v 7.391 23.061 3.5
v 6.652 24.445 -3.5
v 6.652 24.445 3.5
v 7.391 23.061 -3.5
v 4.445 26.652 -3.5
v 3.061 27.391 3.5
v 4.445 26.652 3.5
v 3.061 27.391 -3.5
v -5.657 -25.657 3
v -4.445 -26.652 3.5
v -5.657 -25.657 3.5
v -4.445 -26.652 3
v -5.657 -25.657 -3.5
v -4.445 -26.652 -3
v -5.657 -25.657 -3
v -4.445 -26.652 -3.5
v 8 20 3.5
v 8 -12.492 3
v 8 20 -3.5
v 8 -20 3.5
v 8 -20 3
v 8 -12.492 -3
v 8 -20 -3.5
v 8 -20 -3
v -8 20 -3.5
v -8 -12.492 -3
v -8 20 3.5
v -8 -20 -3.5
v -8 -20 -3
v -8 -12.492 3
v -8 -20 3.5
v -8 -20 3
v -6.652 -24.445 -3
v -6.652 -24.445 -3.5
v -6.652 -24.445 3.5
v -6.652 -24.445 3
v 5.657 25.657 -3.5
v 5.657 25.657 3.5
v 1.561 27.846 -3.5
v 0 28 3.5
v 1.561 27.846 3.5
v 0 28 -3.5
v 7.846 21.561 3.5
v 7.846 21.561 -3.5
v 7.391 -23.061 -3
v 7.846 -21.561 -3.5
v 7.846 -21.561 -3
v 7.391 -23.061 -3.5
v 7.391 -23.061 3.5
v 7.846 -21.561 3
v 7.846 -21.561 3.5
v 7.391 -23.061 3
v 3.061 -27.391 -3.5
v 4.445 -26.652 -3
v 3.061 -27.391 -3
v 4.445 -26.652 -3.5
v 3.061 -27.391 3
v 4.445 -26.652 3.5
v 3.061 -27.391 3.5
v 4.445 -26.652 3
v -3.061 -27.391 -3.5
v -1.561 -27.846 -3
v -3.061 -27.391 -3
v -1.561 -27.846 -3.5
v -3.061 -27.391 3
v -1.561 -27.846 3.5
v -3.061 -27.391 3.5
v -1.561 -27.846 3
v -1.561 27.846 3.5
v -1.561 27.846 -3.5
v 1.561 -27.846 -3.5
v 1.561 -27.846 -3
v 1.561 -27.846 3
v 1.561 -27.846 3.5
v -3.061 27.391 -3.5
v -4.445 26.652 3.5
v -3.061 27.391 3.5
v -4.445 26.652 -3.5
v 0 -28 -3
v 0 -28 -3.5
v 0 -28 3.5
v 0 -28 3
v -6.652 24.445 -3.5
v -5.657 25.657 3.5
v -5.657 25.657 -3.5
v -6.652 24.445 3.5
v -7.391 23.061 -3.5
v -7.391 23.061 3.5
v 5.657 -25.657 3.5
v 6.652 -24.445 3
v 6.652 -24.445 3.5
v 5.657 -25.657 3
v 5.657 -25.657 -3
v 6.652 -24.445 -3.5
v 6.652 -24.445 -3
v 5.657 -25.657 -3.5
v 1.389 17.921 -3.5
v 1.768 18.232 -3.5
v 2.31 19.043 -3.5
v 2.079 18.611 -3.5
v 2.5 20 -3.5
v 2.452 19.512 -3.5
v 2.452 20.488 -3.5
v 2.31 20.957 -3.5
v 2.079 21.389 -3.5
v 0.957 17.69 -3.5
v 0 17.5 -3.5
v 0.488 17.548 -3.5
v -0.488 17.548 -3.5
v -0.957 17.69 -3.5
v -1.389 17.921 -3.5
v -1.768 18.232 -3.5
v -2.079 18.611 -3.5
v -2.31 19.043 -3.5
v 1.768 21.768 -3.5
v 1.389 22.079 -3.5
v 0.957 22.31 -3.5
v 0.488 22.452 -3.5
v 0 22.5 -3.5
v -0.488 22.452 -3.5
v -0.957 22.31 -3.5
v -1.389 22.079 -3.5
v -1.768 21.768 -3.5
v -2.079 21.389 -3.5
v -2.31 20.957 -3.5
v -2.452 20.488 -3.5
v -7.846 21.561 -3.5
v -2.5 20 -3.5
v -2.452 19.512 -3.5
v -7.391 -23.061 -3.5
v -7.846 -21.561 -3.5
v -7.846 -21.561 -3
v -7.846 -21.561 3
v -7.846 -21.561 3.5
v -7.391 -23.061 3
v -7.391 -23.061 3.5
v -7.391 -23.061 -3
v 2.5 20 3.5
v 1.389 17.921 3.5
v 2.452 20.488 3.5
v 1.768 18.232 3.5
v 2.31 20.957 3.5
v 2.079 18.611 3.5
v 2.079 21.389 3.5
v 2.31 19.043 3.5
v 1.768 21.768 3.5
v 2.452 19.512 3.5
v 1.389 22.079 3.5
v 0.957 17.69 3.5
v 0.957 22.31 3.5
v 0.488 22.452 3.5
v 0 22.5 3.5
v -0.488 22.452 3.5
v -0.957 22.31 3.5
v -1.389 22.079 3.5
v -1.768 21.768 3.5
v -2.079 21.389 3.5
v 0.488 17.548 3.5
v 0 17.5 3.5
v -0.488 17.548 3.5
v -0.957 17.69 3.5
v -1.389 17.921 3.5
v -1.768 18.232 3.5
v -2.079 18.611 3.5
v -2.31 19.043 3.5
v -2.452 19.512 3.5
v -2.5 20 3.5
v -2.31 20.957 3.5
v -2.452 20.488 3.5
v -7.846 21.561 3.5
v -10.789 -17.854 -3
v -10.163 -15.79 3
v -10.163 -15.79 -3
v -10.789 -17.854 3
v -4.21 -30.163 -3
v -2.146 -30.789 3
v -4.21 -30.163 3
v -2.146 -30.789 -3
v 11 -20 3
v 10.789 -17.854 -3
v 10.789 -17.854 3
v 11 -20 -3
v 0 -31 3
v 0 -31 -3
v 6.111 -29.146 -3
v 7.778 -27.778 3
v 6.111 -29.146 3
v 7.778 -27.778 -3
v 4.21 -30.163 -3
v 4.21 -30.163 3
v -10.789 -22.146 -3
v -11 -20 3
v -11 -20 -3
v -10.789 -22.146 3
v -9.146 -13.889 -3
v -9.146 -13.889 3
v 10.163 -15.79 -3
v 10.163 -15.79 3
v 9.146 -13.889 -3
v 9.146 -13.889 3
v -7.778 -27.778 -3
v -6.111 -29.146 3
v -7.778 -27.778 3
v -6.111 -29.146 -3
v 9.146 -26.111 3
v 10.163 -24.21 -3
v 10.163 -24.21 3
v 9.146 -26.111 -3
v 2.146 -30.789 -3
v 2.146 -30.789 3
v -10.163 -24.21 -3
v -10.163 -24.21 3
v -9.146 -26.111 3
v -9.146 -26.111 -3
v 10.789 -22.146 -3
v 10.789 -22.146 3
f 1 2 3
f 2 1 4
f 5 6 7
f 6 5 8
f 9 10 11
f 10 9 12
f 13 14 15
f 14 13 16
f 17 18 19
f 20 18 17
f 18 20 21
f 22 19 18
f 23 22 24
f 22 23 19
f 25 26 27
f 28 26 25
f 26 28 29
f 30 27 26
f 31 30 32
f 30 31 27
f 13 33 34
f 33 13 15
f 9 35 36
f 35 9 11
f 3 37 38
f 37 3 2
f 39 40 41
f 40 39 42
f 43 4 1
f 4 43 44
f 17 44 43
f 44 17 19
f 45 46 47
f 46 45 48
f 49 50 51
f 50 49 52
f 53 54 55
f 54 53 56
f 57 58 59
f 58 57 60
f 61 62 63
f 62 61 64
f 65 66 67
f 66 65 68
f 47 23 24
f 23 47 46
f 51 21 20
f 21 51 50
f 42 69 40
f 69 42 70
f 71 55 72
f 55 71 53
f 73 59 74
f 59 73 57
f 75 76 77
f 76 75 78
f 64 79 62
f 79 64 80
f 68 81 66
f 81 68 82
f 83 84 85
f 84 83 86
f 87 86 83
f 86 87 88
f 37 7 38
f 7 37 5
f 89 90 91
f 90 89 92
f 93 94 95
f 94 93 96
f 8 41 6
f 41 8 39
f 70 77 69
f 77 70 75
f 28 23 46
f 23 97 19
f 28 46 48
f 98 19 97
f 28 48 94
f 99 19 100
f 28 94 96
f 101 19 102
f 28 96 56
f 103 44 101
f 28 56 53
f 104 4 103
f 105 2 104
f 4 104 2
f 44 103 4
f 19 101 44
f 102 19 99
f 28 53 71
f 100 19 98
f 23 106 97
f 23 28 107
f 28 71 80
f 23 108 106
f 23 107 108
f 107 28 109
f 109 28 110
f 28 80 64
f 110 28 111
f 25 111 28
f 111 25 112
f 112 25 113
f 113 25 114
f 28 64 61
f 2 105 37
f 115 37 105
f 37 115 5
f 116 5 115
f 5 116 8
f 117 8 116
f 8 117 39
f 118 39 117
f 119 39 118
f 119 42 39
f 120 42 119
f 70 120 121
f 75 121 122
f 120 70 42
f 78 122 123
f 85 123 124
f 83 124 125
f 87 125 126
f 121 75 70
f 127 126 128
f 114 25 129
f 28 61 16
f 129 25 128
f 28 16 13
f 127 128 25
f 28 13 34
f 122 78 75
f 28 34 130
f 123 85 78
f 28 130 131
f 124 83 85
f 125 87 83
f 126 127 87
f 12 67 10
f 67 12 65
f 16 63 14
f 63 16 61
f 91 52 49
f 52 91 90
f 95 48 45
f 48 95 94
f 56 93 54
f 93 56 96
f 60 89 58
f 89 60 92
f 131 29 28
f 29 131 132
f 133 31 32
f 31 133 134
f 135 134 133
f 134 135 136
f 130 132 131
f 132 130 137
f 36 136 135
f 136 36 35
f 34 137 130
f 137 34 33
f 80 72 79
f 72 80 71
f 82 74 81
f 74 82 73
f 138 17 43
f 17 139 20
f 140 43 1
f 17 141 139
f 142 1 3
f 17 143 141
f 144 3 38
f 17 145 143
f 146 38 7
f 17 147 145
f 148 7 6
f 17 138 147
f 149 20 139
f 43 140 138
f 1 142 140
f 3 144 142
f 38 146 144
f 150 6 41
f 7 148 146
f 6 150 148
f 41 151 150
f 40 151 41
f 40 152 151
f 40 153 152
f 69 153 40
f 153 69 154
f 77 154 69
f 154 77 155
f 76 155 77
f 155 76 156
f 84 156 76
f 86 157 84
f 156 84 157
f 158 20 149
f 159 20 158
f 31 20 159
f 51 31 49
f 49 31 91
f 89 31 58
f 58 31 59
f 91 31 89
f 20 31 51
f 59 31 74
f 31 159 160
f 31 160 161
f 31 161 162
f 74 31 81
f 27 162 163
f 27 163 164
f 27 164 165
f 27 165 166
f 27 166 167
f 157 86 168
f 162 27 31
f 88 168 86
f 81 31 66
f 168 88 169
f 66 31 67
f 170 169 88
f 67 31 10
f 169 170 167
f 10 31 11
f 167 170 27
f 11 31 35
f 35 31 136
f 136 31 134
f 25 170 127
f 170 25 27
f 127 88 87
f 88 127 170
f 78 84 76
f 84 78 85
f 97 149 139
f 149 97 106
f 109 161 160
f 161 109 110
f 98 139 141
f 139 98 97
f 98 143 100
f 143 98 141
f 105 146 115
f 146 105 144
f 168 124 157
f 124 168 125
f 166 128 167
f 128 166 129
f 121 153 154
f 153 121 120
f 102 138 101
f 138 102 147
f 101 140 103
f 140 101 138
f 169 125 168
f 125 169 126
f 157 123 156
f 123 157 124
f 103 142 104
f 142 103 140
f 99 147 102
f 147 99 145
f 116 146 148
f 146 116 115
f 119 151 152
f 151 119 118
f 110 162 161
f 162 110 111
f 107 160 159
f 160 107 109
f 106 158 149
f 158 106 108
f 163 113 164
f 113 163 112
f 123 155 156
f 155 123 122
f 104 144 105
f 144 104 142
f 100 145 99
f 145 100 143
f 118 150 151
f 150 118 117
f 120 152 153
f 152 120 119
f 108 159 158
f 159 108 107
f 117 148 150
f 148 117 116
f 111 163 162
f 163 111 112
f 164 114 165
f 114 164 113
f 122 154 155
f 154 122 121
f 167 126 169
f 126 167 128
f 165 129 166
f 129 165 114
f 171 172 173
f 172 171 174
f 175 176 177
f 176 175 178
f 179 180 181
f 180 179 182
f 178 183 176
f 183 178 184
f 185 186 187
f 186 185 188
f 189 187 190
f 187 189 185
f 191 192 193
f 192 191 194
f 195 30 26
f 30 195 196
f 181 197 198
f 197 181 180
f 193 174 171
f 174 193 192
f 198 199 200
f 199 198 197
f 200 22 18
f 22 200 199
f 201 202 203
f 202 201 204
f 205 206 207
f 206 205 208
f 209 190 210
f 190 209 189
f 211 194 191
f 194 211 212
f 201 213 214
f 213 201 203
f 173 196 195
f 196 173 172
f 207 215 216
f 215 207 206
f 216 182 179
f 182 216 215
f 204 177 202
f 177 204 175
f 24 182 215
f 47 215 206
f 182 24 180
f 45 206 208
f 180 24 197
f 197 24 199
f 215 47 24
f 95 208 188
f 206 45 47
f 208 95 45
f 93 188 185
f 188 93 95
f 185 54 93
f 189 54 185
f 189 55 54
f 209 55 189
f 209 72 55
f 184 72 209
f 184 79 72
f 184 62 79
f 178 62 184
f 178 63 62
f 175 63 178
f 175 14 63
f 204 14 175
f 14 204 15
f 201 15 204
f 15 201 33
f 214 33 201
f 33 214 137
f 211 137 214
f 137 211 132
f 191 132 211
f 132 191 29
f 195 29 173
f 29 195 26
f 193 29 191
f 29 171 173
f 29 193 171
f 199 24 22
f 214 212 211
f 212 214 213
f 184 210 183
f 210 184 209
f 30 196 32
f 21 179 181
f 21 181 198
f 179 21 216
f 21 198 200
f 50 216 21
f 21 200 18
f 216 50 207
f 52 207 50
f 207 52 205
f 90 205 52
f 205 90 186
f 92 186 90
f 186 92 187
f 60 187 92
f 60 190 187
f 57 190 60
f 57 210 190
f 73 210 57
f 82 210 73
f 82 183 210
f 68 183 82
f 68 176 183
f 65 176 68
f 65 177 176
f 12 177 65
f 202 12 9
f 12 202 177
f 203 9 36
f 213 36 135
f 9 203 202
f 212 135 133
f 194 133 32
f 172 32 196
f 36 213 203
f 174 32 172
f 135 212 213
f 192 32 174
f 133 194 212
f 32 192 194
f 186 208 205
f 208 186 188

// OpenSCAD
lower_len=40;
leg_w=16;
leg_t=7;
pivot_d=5;
foot_d=22;
foot_h=6;
$fn=32;
union(){
 difference(){
  hull(){
   translate([0,lower_len/2,0]) cylinder(d=leg_w, h=leg_t, center=true);
   translate([0,-lower_len/2,0]) cylinder(d=leg_w, h=leg_t, center=true);
  }
  translate([0,lower_len/2,0]) cylinder(d=pivot_d, h=leg_t+2, center=true);
 }
 translate([0,-lower_len/2,0]) cylinder(d=foot_d, h=foot_h, center=true);
}
